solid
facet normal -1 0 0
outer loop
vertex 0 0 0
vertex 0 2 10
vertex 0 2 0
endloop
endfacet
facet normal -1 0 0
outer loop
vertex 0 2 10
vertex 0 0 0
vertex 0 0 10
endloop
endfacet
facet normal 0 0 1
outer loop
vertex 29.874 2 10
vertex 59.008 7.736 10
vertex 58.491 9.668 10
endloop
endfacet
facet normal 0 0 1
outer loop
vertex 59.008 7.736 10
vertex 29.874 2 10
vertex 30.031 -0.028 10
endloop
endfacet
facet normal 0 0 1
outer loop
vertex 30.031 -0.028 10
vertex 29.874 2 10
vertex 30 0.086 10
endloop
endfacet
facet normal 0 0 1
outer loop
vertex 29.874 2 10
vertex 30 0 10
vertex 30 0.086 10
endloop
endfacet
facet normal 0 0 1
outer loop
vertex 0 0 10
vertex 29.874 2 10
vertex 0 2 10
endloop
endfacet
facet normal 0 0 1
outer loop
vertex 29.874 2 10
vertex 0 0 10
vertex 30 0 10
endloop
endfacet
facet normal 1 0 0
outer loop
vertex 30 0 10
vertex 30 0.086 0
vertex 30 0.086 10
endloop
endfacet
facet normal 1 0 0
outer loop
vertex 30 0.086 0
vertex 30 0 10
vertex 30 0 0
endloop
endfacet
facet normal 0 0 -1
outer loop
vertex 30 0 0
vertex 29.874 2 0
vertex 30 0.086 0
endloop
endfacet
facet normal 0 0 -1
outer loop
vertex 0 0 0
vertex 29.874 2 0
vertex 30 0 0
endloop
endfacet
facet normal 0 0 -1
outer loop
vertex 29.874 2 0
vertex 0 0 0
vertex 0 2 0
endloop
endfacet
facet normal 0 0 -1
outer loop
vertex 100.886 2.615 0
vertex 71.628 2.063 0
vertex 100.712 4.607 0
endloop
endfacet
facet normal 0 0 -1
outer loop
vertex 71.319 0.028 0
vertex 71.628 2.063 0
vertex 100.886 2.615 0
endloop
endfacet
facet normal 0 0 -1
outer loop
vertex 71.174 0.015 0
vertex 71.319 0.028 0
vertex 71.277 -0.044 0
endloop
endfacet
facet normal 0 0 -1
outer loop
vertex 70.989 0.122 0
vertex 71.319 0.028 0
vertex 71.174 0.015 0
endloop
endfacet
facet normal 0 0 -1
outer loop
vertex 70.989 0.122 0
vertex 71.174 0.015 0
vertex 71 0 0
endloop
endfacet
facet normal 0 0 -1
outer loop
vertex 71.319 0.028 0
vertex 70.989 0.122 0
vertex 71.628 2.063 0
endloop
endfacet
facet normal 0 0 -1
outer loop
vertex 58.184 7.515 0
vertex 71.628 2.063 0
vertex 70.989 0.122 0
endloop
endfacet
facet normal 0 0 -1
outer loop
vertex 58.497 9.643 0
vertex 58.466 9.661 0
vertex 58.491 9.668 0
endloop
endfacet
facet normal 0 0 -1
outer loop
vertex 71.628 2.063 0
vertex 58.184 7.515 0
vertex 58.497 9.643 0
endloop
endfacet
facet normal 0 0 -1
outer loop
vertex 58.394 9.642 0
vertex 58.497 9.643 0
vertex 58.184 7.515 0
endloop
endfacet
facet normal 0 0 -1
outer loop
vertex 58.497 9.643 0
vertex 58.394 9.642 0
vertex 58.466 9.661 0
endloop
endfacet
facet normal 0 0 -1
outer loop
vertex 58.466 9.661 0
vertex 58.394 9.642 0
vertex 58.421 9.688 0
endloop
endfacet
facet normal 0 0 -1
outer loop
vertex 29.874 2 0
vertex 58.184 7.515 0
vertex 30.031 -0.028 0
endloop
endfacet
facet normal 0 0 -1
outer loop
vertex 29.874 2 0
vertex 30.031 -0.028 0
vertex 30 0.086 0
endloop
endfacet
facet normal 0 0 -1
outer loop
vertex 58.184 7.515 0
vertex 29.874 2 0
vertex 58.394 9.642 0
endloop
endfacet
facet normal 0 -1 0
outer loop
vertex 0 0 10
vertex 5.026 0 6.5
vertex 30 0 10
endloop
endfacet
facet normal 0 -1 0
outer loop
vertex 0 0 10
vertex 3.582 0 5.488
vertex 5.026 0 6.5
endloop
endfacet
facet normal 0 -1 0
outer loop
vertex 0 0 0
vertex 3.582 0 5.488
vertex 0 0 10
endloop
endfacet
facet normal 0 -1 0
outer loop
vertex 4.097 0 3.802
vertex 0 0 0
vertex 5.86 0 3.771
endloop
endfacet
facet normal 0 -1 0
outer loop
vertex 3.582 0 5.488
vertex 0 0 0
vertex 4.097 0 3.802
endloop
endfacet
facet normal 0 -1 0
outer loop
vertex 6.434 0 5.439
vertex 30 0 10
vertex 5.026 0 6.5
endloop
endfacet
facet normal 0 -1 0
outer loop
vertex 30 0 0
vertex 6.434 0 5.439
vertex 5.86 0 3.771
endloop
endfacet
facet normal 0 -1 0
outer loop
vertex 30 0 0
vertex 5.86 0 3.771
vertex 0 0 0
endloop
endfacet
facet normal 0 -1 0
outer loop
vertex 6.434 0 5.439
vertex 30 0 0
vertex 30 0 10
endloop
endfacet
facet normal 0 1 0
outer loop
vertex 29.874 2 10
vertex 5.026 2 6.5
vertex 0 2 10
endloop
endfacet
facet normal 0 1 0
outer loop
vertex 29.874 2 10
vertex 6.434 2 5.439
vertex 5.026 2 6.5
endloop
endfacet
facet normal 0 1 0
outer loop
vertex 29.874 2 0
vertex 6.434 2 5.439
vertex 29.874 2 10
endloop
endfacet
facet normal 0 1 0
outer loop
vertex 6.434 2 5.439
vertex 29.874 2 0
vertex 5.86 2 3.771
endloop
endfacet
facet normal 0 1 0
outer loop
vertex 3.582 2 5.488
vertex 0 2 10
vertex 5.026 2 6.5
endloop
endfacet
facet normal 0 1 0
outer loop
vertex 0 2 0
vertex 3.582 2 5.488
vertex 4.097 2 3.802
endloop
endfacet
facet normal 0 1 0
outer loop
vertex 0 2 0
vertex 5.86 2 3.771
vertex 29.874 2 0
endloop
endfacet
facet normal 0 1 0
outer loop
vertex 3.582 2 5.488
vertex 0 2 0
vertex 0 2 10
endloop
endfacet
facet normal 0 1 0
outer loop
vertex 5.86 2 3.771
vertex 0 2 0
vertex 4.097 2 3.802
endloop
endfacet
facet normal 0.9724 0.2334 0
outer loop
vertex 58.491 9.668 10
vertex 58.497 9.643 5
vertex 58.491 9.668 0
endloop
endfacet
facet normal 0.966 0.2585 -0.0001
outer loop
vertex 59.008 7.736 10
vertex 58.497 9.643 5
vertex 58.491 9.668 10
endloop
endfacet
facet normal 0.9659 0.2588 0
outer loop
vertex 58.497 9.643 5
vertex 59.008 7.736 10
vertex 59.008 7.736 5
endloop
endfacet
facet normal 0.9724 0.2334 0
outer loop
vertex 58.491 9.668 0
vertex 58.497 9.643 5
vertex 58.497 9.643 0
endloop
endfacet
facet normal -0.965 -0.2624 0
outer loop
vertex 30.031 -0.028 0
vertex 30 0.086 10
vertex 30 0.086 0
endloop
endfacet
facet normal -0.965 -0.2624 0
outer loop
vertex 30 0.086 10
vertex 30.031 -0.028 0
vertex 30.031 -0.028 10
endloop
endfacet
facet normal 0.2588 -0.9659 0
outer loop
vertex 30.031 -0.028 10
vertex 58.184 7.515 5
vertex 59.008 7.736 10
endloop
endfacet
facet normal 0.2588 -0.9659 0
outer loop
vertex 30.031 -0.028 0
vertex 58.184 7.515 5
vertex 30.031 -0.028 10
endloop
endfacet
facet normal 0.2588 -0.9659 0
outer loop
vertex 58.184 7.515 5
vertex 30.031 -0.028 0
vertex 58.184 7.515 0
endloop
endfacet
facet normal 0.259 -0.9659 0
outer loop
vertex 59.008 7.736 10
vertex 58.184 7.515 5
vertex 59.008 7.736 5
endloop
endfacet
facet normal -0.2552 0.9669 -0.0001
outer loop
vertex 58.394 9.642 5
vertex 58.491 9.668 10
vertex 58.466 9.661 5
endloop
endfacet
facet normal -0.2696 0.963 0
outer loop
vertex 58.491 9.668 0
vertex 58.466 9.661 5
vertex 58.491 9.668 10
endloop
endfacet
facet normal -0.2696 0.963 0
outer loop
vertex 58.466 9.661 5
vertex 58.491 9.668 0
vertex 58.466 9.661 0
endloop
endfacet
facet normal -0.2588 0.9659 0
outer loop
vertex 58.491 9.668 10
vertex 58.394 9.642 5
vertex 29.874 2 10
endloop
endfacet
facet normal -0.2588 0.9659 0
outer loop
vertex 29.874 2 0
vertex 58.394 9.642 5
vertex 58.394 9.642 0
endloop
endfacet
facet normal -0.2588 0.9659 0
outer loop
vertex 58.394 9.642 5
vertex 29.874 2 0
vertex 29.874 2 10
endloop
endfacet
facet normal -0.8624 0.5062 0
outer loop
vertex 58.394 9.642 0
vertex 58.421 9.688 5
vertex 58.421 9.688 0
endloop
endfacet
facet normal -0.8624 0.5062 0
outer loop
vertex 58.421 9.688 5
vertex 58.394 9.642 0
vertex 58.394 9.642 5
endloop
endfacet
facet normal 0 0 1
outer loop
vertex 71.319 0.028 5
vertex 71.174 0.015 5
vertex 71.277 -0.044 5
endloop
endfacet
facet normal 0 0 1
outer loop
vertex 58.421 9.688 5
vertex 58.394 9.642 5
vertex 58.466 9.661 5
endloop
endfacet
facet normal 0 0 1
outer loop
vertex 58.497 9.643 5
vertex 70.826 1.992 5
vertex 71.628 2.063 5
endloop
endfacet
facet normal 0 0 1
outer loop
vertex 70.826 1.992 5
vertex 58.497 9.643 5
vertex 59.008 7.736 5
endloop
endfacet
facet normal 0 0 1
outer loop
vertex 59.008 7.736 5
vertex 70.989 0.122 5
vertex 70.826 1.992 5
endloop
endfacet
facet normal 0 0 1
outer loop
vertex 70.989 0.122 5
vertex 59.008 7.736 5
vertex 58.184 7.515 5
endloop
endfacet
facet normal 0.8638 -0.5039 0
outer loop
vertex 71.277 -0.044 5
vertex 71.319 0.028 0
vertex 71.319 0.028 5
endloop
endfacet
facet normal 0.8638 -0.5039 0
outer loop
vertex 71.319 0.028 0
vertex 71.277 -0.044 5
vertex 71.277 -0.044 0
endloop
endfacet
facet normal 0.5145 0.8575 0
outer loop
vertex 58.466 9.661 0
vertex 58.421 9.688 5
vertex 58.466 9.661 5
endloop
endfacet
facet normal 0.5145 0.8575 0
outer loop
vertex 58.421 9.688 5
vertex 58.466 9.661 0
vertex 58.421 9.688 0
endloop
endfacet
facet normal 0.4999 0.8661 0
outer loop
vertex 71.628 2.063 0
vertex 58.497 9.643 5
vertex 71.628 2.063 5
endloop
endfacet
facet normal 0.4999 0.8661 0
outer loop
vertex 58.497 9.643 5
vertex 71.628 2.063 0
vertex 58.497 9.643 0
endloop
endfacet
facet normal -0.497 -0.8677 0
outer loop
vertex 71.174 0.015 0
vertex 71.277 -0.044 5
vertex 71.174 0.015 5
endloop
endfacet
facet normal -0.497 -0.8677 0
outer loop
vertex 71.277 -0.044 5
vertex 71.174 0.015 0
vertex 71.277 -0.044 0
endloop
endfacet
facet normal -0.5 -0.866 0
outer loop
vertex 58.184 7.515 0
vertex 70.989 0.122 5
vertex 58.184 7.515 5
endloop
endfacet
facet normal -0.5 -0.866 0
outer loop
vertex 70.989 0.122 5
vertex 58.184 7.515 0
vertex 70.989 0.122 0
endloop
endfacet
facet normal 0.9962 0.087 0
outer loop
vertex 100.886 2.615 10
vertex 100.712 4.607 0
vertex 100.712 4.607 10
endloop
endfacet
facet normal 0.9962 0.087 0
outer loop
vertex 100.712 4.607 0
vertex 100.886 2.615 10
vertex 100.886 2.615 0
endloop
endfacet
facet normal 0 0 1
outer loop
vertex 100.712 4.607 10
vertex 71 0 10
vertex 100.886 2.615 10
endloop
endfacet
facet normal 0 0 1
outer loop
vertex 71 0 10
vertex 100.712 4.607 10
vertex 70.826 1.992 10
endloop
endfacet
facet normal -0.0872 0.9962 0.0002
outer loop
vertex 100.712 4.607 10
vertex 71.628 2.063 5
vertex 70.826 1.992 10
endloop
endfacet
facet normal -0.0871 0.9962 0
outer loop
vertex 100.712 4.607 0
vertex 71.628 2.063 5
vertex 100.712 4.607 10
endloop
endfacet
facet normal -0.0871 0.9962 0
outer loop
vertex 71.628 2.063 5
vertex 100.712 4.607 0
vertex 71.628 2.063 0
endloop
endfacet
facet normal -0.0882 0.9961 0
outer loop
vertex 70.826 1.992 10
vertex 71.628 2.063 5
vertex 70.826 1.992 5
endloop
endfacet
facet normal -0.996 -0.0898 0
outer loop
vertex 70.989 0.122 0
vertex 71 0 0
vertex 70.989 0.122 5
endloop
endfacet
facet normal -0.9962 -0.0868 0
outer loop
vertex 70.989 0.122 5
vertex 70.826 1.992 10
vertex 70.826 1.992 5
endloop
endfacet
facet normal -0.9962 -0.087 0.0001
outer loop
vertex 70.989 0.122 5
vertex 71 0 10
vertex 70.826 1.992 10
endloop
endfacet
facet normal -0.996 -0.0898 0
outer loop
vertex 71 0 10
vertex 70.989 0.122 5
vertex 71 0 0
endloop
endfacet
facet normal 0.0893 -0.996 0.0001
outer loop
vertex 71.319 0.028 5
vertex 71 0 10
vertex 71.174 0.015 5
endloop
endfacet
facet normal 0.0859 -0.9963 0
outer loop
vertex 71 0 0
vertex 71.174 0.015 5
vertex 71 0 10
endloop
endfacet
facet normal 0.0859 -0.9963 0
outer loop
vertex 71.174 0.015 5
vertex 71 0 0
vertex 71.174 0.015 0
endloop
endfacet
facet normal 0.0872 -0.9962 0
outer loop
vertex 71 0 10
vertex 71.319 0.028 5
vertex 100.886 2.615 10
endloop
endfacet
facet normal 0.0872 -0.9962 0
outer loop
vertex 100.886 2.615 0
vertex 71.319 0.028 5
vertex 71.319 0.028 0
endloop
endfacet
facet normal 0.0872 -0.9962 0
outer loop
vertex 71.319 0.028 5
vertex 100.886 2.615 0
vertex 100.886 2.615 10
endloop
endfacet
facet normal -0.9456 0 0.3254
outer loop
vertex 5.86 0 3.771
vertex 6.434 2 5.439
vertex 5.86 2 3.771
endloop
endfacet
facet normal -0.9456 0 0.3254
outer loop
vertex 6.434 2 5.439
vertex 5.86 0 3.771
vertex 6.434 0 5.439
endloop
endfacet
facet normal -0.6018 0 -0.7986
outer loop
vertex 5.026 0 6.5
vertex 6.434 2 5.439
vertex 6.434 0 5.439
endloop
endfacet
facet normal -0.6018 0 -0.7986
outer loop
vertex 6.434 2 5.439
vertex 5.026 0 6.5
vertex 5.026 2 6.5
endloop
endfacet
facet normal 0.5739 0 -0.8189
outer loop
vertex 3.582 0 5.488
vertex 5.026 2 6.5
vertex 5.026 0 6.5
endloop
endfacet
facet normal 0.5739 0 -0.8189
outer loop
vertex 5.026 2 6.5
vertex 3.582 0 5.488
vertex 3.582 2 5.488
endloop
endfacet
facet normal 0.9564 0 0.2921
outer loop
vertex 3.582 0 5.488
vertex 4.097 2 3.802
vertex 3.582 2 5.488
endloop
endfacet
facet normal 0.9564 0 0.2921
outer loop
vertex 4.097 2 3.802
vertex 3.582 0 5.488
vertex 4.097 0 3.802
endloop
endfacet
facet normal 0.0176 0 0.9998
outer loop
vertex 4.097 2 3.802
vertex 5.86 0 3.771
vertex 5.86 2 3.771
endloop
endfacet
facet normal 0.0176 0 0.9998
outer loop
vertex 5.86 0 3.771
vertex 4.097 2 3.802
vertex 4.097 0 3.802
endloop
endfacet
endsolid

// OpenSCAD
difference()
{
union()
{
    cube([30,2,10]);
    rotate(15) translate([29,-7.8,0]) cube([30,2,10]);
    rotate(-30) translate([45.75,35.6,0]) cube([16,2,5]);
     translate([71,0,0]) rotate(5) cube([30,2,10]);
}


translate([5, 4, 5]) rotate([90,55,0]) cylinder(h=6, d=3);
}
